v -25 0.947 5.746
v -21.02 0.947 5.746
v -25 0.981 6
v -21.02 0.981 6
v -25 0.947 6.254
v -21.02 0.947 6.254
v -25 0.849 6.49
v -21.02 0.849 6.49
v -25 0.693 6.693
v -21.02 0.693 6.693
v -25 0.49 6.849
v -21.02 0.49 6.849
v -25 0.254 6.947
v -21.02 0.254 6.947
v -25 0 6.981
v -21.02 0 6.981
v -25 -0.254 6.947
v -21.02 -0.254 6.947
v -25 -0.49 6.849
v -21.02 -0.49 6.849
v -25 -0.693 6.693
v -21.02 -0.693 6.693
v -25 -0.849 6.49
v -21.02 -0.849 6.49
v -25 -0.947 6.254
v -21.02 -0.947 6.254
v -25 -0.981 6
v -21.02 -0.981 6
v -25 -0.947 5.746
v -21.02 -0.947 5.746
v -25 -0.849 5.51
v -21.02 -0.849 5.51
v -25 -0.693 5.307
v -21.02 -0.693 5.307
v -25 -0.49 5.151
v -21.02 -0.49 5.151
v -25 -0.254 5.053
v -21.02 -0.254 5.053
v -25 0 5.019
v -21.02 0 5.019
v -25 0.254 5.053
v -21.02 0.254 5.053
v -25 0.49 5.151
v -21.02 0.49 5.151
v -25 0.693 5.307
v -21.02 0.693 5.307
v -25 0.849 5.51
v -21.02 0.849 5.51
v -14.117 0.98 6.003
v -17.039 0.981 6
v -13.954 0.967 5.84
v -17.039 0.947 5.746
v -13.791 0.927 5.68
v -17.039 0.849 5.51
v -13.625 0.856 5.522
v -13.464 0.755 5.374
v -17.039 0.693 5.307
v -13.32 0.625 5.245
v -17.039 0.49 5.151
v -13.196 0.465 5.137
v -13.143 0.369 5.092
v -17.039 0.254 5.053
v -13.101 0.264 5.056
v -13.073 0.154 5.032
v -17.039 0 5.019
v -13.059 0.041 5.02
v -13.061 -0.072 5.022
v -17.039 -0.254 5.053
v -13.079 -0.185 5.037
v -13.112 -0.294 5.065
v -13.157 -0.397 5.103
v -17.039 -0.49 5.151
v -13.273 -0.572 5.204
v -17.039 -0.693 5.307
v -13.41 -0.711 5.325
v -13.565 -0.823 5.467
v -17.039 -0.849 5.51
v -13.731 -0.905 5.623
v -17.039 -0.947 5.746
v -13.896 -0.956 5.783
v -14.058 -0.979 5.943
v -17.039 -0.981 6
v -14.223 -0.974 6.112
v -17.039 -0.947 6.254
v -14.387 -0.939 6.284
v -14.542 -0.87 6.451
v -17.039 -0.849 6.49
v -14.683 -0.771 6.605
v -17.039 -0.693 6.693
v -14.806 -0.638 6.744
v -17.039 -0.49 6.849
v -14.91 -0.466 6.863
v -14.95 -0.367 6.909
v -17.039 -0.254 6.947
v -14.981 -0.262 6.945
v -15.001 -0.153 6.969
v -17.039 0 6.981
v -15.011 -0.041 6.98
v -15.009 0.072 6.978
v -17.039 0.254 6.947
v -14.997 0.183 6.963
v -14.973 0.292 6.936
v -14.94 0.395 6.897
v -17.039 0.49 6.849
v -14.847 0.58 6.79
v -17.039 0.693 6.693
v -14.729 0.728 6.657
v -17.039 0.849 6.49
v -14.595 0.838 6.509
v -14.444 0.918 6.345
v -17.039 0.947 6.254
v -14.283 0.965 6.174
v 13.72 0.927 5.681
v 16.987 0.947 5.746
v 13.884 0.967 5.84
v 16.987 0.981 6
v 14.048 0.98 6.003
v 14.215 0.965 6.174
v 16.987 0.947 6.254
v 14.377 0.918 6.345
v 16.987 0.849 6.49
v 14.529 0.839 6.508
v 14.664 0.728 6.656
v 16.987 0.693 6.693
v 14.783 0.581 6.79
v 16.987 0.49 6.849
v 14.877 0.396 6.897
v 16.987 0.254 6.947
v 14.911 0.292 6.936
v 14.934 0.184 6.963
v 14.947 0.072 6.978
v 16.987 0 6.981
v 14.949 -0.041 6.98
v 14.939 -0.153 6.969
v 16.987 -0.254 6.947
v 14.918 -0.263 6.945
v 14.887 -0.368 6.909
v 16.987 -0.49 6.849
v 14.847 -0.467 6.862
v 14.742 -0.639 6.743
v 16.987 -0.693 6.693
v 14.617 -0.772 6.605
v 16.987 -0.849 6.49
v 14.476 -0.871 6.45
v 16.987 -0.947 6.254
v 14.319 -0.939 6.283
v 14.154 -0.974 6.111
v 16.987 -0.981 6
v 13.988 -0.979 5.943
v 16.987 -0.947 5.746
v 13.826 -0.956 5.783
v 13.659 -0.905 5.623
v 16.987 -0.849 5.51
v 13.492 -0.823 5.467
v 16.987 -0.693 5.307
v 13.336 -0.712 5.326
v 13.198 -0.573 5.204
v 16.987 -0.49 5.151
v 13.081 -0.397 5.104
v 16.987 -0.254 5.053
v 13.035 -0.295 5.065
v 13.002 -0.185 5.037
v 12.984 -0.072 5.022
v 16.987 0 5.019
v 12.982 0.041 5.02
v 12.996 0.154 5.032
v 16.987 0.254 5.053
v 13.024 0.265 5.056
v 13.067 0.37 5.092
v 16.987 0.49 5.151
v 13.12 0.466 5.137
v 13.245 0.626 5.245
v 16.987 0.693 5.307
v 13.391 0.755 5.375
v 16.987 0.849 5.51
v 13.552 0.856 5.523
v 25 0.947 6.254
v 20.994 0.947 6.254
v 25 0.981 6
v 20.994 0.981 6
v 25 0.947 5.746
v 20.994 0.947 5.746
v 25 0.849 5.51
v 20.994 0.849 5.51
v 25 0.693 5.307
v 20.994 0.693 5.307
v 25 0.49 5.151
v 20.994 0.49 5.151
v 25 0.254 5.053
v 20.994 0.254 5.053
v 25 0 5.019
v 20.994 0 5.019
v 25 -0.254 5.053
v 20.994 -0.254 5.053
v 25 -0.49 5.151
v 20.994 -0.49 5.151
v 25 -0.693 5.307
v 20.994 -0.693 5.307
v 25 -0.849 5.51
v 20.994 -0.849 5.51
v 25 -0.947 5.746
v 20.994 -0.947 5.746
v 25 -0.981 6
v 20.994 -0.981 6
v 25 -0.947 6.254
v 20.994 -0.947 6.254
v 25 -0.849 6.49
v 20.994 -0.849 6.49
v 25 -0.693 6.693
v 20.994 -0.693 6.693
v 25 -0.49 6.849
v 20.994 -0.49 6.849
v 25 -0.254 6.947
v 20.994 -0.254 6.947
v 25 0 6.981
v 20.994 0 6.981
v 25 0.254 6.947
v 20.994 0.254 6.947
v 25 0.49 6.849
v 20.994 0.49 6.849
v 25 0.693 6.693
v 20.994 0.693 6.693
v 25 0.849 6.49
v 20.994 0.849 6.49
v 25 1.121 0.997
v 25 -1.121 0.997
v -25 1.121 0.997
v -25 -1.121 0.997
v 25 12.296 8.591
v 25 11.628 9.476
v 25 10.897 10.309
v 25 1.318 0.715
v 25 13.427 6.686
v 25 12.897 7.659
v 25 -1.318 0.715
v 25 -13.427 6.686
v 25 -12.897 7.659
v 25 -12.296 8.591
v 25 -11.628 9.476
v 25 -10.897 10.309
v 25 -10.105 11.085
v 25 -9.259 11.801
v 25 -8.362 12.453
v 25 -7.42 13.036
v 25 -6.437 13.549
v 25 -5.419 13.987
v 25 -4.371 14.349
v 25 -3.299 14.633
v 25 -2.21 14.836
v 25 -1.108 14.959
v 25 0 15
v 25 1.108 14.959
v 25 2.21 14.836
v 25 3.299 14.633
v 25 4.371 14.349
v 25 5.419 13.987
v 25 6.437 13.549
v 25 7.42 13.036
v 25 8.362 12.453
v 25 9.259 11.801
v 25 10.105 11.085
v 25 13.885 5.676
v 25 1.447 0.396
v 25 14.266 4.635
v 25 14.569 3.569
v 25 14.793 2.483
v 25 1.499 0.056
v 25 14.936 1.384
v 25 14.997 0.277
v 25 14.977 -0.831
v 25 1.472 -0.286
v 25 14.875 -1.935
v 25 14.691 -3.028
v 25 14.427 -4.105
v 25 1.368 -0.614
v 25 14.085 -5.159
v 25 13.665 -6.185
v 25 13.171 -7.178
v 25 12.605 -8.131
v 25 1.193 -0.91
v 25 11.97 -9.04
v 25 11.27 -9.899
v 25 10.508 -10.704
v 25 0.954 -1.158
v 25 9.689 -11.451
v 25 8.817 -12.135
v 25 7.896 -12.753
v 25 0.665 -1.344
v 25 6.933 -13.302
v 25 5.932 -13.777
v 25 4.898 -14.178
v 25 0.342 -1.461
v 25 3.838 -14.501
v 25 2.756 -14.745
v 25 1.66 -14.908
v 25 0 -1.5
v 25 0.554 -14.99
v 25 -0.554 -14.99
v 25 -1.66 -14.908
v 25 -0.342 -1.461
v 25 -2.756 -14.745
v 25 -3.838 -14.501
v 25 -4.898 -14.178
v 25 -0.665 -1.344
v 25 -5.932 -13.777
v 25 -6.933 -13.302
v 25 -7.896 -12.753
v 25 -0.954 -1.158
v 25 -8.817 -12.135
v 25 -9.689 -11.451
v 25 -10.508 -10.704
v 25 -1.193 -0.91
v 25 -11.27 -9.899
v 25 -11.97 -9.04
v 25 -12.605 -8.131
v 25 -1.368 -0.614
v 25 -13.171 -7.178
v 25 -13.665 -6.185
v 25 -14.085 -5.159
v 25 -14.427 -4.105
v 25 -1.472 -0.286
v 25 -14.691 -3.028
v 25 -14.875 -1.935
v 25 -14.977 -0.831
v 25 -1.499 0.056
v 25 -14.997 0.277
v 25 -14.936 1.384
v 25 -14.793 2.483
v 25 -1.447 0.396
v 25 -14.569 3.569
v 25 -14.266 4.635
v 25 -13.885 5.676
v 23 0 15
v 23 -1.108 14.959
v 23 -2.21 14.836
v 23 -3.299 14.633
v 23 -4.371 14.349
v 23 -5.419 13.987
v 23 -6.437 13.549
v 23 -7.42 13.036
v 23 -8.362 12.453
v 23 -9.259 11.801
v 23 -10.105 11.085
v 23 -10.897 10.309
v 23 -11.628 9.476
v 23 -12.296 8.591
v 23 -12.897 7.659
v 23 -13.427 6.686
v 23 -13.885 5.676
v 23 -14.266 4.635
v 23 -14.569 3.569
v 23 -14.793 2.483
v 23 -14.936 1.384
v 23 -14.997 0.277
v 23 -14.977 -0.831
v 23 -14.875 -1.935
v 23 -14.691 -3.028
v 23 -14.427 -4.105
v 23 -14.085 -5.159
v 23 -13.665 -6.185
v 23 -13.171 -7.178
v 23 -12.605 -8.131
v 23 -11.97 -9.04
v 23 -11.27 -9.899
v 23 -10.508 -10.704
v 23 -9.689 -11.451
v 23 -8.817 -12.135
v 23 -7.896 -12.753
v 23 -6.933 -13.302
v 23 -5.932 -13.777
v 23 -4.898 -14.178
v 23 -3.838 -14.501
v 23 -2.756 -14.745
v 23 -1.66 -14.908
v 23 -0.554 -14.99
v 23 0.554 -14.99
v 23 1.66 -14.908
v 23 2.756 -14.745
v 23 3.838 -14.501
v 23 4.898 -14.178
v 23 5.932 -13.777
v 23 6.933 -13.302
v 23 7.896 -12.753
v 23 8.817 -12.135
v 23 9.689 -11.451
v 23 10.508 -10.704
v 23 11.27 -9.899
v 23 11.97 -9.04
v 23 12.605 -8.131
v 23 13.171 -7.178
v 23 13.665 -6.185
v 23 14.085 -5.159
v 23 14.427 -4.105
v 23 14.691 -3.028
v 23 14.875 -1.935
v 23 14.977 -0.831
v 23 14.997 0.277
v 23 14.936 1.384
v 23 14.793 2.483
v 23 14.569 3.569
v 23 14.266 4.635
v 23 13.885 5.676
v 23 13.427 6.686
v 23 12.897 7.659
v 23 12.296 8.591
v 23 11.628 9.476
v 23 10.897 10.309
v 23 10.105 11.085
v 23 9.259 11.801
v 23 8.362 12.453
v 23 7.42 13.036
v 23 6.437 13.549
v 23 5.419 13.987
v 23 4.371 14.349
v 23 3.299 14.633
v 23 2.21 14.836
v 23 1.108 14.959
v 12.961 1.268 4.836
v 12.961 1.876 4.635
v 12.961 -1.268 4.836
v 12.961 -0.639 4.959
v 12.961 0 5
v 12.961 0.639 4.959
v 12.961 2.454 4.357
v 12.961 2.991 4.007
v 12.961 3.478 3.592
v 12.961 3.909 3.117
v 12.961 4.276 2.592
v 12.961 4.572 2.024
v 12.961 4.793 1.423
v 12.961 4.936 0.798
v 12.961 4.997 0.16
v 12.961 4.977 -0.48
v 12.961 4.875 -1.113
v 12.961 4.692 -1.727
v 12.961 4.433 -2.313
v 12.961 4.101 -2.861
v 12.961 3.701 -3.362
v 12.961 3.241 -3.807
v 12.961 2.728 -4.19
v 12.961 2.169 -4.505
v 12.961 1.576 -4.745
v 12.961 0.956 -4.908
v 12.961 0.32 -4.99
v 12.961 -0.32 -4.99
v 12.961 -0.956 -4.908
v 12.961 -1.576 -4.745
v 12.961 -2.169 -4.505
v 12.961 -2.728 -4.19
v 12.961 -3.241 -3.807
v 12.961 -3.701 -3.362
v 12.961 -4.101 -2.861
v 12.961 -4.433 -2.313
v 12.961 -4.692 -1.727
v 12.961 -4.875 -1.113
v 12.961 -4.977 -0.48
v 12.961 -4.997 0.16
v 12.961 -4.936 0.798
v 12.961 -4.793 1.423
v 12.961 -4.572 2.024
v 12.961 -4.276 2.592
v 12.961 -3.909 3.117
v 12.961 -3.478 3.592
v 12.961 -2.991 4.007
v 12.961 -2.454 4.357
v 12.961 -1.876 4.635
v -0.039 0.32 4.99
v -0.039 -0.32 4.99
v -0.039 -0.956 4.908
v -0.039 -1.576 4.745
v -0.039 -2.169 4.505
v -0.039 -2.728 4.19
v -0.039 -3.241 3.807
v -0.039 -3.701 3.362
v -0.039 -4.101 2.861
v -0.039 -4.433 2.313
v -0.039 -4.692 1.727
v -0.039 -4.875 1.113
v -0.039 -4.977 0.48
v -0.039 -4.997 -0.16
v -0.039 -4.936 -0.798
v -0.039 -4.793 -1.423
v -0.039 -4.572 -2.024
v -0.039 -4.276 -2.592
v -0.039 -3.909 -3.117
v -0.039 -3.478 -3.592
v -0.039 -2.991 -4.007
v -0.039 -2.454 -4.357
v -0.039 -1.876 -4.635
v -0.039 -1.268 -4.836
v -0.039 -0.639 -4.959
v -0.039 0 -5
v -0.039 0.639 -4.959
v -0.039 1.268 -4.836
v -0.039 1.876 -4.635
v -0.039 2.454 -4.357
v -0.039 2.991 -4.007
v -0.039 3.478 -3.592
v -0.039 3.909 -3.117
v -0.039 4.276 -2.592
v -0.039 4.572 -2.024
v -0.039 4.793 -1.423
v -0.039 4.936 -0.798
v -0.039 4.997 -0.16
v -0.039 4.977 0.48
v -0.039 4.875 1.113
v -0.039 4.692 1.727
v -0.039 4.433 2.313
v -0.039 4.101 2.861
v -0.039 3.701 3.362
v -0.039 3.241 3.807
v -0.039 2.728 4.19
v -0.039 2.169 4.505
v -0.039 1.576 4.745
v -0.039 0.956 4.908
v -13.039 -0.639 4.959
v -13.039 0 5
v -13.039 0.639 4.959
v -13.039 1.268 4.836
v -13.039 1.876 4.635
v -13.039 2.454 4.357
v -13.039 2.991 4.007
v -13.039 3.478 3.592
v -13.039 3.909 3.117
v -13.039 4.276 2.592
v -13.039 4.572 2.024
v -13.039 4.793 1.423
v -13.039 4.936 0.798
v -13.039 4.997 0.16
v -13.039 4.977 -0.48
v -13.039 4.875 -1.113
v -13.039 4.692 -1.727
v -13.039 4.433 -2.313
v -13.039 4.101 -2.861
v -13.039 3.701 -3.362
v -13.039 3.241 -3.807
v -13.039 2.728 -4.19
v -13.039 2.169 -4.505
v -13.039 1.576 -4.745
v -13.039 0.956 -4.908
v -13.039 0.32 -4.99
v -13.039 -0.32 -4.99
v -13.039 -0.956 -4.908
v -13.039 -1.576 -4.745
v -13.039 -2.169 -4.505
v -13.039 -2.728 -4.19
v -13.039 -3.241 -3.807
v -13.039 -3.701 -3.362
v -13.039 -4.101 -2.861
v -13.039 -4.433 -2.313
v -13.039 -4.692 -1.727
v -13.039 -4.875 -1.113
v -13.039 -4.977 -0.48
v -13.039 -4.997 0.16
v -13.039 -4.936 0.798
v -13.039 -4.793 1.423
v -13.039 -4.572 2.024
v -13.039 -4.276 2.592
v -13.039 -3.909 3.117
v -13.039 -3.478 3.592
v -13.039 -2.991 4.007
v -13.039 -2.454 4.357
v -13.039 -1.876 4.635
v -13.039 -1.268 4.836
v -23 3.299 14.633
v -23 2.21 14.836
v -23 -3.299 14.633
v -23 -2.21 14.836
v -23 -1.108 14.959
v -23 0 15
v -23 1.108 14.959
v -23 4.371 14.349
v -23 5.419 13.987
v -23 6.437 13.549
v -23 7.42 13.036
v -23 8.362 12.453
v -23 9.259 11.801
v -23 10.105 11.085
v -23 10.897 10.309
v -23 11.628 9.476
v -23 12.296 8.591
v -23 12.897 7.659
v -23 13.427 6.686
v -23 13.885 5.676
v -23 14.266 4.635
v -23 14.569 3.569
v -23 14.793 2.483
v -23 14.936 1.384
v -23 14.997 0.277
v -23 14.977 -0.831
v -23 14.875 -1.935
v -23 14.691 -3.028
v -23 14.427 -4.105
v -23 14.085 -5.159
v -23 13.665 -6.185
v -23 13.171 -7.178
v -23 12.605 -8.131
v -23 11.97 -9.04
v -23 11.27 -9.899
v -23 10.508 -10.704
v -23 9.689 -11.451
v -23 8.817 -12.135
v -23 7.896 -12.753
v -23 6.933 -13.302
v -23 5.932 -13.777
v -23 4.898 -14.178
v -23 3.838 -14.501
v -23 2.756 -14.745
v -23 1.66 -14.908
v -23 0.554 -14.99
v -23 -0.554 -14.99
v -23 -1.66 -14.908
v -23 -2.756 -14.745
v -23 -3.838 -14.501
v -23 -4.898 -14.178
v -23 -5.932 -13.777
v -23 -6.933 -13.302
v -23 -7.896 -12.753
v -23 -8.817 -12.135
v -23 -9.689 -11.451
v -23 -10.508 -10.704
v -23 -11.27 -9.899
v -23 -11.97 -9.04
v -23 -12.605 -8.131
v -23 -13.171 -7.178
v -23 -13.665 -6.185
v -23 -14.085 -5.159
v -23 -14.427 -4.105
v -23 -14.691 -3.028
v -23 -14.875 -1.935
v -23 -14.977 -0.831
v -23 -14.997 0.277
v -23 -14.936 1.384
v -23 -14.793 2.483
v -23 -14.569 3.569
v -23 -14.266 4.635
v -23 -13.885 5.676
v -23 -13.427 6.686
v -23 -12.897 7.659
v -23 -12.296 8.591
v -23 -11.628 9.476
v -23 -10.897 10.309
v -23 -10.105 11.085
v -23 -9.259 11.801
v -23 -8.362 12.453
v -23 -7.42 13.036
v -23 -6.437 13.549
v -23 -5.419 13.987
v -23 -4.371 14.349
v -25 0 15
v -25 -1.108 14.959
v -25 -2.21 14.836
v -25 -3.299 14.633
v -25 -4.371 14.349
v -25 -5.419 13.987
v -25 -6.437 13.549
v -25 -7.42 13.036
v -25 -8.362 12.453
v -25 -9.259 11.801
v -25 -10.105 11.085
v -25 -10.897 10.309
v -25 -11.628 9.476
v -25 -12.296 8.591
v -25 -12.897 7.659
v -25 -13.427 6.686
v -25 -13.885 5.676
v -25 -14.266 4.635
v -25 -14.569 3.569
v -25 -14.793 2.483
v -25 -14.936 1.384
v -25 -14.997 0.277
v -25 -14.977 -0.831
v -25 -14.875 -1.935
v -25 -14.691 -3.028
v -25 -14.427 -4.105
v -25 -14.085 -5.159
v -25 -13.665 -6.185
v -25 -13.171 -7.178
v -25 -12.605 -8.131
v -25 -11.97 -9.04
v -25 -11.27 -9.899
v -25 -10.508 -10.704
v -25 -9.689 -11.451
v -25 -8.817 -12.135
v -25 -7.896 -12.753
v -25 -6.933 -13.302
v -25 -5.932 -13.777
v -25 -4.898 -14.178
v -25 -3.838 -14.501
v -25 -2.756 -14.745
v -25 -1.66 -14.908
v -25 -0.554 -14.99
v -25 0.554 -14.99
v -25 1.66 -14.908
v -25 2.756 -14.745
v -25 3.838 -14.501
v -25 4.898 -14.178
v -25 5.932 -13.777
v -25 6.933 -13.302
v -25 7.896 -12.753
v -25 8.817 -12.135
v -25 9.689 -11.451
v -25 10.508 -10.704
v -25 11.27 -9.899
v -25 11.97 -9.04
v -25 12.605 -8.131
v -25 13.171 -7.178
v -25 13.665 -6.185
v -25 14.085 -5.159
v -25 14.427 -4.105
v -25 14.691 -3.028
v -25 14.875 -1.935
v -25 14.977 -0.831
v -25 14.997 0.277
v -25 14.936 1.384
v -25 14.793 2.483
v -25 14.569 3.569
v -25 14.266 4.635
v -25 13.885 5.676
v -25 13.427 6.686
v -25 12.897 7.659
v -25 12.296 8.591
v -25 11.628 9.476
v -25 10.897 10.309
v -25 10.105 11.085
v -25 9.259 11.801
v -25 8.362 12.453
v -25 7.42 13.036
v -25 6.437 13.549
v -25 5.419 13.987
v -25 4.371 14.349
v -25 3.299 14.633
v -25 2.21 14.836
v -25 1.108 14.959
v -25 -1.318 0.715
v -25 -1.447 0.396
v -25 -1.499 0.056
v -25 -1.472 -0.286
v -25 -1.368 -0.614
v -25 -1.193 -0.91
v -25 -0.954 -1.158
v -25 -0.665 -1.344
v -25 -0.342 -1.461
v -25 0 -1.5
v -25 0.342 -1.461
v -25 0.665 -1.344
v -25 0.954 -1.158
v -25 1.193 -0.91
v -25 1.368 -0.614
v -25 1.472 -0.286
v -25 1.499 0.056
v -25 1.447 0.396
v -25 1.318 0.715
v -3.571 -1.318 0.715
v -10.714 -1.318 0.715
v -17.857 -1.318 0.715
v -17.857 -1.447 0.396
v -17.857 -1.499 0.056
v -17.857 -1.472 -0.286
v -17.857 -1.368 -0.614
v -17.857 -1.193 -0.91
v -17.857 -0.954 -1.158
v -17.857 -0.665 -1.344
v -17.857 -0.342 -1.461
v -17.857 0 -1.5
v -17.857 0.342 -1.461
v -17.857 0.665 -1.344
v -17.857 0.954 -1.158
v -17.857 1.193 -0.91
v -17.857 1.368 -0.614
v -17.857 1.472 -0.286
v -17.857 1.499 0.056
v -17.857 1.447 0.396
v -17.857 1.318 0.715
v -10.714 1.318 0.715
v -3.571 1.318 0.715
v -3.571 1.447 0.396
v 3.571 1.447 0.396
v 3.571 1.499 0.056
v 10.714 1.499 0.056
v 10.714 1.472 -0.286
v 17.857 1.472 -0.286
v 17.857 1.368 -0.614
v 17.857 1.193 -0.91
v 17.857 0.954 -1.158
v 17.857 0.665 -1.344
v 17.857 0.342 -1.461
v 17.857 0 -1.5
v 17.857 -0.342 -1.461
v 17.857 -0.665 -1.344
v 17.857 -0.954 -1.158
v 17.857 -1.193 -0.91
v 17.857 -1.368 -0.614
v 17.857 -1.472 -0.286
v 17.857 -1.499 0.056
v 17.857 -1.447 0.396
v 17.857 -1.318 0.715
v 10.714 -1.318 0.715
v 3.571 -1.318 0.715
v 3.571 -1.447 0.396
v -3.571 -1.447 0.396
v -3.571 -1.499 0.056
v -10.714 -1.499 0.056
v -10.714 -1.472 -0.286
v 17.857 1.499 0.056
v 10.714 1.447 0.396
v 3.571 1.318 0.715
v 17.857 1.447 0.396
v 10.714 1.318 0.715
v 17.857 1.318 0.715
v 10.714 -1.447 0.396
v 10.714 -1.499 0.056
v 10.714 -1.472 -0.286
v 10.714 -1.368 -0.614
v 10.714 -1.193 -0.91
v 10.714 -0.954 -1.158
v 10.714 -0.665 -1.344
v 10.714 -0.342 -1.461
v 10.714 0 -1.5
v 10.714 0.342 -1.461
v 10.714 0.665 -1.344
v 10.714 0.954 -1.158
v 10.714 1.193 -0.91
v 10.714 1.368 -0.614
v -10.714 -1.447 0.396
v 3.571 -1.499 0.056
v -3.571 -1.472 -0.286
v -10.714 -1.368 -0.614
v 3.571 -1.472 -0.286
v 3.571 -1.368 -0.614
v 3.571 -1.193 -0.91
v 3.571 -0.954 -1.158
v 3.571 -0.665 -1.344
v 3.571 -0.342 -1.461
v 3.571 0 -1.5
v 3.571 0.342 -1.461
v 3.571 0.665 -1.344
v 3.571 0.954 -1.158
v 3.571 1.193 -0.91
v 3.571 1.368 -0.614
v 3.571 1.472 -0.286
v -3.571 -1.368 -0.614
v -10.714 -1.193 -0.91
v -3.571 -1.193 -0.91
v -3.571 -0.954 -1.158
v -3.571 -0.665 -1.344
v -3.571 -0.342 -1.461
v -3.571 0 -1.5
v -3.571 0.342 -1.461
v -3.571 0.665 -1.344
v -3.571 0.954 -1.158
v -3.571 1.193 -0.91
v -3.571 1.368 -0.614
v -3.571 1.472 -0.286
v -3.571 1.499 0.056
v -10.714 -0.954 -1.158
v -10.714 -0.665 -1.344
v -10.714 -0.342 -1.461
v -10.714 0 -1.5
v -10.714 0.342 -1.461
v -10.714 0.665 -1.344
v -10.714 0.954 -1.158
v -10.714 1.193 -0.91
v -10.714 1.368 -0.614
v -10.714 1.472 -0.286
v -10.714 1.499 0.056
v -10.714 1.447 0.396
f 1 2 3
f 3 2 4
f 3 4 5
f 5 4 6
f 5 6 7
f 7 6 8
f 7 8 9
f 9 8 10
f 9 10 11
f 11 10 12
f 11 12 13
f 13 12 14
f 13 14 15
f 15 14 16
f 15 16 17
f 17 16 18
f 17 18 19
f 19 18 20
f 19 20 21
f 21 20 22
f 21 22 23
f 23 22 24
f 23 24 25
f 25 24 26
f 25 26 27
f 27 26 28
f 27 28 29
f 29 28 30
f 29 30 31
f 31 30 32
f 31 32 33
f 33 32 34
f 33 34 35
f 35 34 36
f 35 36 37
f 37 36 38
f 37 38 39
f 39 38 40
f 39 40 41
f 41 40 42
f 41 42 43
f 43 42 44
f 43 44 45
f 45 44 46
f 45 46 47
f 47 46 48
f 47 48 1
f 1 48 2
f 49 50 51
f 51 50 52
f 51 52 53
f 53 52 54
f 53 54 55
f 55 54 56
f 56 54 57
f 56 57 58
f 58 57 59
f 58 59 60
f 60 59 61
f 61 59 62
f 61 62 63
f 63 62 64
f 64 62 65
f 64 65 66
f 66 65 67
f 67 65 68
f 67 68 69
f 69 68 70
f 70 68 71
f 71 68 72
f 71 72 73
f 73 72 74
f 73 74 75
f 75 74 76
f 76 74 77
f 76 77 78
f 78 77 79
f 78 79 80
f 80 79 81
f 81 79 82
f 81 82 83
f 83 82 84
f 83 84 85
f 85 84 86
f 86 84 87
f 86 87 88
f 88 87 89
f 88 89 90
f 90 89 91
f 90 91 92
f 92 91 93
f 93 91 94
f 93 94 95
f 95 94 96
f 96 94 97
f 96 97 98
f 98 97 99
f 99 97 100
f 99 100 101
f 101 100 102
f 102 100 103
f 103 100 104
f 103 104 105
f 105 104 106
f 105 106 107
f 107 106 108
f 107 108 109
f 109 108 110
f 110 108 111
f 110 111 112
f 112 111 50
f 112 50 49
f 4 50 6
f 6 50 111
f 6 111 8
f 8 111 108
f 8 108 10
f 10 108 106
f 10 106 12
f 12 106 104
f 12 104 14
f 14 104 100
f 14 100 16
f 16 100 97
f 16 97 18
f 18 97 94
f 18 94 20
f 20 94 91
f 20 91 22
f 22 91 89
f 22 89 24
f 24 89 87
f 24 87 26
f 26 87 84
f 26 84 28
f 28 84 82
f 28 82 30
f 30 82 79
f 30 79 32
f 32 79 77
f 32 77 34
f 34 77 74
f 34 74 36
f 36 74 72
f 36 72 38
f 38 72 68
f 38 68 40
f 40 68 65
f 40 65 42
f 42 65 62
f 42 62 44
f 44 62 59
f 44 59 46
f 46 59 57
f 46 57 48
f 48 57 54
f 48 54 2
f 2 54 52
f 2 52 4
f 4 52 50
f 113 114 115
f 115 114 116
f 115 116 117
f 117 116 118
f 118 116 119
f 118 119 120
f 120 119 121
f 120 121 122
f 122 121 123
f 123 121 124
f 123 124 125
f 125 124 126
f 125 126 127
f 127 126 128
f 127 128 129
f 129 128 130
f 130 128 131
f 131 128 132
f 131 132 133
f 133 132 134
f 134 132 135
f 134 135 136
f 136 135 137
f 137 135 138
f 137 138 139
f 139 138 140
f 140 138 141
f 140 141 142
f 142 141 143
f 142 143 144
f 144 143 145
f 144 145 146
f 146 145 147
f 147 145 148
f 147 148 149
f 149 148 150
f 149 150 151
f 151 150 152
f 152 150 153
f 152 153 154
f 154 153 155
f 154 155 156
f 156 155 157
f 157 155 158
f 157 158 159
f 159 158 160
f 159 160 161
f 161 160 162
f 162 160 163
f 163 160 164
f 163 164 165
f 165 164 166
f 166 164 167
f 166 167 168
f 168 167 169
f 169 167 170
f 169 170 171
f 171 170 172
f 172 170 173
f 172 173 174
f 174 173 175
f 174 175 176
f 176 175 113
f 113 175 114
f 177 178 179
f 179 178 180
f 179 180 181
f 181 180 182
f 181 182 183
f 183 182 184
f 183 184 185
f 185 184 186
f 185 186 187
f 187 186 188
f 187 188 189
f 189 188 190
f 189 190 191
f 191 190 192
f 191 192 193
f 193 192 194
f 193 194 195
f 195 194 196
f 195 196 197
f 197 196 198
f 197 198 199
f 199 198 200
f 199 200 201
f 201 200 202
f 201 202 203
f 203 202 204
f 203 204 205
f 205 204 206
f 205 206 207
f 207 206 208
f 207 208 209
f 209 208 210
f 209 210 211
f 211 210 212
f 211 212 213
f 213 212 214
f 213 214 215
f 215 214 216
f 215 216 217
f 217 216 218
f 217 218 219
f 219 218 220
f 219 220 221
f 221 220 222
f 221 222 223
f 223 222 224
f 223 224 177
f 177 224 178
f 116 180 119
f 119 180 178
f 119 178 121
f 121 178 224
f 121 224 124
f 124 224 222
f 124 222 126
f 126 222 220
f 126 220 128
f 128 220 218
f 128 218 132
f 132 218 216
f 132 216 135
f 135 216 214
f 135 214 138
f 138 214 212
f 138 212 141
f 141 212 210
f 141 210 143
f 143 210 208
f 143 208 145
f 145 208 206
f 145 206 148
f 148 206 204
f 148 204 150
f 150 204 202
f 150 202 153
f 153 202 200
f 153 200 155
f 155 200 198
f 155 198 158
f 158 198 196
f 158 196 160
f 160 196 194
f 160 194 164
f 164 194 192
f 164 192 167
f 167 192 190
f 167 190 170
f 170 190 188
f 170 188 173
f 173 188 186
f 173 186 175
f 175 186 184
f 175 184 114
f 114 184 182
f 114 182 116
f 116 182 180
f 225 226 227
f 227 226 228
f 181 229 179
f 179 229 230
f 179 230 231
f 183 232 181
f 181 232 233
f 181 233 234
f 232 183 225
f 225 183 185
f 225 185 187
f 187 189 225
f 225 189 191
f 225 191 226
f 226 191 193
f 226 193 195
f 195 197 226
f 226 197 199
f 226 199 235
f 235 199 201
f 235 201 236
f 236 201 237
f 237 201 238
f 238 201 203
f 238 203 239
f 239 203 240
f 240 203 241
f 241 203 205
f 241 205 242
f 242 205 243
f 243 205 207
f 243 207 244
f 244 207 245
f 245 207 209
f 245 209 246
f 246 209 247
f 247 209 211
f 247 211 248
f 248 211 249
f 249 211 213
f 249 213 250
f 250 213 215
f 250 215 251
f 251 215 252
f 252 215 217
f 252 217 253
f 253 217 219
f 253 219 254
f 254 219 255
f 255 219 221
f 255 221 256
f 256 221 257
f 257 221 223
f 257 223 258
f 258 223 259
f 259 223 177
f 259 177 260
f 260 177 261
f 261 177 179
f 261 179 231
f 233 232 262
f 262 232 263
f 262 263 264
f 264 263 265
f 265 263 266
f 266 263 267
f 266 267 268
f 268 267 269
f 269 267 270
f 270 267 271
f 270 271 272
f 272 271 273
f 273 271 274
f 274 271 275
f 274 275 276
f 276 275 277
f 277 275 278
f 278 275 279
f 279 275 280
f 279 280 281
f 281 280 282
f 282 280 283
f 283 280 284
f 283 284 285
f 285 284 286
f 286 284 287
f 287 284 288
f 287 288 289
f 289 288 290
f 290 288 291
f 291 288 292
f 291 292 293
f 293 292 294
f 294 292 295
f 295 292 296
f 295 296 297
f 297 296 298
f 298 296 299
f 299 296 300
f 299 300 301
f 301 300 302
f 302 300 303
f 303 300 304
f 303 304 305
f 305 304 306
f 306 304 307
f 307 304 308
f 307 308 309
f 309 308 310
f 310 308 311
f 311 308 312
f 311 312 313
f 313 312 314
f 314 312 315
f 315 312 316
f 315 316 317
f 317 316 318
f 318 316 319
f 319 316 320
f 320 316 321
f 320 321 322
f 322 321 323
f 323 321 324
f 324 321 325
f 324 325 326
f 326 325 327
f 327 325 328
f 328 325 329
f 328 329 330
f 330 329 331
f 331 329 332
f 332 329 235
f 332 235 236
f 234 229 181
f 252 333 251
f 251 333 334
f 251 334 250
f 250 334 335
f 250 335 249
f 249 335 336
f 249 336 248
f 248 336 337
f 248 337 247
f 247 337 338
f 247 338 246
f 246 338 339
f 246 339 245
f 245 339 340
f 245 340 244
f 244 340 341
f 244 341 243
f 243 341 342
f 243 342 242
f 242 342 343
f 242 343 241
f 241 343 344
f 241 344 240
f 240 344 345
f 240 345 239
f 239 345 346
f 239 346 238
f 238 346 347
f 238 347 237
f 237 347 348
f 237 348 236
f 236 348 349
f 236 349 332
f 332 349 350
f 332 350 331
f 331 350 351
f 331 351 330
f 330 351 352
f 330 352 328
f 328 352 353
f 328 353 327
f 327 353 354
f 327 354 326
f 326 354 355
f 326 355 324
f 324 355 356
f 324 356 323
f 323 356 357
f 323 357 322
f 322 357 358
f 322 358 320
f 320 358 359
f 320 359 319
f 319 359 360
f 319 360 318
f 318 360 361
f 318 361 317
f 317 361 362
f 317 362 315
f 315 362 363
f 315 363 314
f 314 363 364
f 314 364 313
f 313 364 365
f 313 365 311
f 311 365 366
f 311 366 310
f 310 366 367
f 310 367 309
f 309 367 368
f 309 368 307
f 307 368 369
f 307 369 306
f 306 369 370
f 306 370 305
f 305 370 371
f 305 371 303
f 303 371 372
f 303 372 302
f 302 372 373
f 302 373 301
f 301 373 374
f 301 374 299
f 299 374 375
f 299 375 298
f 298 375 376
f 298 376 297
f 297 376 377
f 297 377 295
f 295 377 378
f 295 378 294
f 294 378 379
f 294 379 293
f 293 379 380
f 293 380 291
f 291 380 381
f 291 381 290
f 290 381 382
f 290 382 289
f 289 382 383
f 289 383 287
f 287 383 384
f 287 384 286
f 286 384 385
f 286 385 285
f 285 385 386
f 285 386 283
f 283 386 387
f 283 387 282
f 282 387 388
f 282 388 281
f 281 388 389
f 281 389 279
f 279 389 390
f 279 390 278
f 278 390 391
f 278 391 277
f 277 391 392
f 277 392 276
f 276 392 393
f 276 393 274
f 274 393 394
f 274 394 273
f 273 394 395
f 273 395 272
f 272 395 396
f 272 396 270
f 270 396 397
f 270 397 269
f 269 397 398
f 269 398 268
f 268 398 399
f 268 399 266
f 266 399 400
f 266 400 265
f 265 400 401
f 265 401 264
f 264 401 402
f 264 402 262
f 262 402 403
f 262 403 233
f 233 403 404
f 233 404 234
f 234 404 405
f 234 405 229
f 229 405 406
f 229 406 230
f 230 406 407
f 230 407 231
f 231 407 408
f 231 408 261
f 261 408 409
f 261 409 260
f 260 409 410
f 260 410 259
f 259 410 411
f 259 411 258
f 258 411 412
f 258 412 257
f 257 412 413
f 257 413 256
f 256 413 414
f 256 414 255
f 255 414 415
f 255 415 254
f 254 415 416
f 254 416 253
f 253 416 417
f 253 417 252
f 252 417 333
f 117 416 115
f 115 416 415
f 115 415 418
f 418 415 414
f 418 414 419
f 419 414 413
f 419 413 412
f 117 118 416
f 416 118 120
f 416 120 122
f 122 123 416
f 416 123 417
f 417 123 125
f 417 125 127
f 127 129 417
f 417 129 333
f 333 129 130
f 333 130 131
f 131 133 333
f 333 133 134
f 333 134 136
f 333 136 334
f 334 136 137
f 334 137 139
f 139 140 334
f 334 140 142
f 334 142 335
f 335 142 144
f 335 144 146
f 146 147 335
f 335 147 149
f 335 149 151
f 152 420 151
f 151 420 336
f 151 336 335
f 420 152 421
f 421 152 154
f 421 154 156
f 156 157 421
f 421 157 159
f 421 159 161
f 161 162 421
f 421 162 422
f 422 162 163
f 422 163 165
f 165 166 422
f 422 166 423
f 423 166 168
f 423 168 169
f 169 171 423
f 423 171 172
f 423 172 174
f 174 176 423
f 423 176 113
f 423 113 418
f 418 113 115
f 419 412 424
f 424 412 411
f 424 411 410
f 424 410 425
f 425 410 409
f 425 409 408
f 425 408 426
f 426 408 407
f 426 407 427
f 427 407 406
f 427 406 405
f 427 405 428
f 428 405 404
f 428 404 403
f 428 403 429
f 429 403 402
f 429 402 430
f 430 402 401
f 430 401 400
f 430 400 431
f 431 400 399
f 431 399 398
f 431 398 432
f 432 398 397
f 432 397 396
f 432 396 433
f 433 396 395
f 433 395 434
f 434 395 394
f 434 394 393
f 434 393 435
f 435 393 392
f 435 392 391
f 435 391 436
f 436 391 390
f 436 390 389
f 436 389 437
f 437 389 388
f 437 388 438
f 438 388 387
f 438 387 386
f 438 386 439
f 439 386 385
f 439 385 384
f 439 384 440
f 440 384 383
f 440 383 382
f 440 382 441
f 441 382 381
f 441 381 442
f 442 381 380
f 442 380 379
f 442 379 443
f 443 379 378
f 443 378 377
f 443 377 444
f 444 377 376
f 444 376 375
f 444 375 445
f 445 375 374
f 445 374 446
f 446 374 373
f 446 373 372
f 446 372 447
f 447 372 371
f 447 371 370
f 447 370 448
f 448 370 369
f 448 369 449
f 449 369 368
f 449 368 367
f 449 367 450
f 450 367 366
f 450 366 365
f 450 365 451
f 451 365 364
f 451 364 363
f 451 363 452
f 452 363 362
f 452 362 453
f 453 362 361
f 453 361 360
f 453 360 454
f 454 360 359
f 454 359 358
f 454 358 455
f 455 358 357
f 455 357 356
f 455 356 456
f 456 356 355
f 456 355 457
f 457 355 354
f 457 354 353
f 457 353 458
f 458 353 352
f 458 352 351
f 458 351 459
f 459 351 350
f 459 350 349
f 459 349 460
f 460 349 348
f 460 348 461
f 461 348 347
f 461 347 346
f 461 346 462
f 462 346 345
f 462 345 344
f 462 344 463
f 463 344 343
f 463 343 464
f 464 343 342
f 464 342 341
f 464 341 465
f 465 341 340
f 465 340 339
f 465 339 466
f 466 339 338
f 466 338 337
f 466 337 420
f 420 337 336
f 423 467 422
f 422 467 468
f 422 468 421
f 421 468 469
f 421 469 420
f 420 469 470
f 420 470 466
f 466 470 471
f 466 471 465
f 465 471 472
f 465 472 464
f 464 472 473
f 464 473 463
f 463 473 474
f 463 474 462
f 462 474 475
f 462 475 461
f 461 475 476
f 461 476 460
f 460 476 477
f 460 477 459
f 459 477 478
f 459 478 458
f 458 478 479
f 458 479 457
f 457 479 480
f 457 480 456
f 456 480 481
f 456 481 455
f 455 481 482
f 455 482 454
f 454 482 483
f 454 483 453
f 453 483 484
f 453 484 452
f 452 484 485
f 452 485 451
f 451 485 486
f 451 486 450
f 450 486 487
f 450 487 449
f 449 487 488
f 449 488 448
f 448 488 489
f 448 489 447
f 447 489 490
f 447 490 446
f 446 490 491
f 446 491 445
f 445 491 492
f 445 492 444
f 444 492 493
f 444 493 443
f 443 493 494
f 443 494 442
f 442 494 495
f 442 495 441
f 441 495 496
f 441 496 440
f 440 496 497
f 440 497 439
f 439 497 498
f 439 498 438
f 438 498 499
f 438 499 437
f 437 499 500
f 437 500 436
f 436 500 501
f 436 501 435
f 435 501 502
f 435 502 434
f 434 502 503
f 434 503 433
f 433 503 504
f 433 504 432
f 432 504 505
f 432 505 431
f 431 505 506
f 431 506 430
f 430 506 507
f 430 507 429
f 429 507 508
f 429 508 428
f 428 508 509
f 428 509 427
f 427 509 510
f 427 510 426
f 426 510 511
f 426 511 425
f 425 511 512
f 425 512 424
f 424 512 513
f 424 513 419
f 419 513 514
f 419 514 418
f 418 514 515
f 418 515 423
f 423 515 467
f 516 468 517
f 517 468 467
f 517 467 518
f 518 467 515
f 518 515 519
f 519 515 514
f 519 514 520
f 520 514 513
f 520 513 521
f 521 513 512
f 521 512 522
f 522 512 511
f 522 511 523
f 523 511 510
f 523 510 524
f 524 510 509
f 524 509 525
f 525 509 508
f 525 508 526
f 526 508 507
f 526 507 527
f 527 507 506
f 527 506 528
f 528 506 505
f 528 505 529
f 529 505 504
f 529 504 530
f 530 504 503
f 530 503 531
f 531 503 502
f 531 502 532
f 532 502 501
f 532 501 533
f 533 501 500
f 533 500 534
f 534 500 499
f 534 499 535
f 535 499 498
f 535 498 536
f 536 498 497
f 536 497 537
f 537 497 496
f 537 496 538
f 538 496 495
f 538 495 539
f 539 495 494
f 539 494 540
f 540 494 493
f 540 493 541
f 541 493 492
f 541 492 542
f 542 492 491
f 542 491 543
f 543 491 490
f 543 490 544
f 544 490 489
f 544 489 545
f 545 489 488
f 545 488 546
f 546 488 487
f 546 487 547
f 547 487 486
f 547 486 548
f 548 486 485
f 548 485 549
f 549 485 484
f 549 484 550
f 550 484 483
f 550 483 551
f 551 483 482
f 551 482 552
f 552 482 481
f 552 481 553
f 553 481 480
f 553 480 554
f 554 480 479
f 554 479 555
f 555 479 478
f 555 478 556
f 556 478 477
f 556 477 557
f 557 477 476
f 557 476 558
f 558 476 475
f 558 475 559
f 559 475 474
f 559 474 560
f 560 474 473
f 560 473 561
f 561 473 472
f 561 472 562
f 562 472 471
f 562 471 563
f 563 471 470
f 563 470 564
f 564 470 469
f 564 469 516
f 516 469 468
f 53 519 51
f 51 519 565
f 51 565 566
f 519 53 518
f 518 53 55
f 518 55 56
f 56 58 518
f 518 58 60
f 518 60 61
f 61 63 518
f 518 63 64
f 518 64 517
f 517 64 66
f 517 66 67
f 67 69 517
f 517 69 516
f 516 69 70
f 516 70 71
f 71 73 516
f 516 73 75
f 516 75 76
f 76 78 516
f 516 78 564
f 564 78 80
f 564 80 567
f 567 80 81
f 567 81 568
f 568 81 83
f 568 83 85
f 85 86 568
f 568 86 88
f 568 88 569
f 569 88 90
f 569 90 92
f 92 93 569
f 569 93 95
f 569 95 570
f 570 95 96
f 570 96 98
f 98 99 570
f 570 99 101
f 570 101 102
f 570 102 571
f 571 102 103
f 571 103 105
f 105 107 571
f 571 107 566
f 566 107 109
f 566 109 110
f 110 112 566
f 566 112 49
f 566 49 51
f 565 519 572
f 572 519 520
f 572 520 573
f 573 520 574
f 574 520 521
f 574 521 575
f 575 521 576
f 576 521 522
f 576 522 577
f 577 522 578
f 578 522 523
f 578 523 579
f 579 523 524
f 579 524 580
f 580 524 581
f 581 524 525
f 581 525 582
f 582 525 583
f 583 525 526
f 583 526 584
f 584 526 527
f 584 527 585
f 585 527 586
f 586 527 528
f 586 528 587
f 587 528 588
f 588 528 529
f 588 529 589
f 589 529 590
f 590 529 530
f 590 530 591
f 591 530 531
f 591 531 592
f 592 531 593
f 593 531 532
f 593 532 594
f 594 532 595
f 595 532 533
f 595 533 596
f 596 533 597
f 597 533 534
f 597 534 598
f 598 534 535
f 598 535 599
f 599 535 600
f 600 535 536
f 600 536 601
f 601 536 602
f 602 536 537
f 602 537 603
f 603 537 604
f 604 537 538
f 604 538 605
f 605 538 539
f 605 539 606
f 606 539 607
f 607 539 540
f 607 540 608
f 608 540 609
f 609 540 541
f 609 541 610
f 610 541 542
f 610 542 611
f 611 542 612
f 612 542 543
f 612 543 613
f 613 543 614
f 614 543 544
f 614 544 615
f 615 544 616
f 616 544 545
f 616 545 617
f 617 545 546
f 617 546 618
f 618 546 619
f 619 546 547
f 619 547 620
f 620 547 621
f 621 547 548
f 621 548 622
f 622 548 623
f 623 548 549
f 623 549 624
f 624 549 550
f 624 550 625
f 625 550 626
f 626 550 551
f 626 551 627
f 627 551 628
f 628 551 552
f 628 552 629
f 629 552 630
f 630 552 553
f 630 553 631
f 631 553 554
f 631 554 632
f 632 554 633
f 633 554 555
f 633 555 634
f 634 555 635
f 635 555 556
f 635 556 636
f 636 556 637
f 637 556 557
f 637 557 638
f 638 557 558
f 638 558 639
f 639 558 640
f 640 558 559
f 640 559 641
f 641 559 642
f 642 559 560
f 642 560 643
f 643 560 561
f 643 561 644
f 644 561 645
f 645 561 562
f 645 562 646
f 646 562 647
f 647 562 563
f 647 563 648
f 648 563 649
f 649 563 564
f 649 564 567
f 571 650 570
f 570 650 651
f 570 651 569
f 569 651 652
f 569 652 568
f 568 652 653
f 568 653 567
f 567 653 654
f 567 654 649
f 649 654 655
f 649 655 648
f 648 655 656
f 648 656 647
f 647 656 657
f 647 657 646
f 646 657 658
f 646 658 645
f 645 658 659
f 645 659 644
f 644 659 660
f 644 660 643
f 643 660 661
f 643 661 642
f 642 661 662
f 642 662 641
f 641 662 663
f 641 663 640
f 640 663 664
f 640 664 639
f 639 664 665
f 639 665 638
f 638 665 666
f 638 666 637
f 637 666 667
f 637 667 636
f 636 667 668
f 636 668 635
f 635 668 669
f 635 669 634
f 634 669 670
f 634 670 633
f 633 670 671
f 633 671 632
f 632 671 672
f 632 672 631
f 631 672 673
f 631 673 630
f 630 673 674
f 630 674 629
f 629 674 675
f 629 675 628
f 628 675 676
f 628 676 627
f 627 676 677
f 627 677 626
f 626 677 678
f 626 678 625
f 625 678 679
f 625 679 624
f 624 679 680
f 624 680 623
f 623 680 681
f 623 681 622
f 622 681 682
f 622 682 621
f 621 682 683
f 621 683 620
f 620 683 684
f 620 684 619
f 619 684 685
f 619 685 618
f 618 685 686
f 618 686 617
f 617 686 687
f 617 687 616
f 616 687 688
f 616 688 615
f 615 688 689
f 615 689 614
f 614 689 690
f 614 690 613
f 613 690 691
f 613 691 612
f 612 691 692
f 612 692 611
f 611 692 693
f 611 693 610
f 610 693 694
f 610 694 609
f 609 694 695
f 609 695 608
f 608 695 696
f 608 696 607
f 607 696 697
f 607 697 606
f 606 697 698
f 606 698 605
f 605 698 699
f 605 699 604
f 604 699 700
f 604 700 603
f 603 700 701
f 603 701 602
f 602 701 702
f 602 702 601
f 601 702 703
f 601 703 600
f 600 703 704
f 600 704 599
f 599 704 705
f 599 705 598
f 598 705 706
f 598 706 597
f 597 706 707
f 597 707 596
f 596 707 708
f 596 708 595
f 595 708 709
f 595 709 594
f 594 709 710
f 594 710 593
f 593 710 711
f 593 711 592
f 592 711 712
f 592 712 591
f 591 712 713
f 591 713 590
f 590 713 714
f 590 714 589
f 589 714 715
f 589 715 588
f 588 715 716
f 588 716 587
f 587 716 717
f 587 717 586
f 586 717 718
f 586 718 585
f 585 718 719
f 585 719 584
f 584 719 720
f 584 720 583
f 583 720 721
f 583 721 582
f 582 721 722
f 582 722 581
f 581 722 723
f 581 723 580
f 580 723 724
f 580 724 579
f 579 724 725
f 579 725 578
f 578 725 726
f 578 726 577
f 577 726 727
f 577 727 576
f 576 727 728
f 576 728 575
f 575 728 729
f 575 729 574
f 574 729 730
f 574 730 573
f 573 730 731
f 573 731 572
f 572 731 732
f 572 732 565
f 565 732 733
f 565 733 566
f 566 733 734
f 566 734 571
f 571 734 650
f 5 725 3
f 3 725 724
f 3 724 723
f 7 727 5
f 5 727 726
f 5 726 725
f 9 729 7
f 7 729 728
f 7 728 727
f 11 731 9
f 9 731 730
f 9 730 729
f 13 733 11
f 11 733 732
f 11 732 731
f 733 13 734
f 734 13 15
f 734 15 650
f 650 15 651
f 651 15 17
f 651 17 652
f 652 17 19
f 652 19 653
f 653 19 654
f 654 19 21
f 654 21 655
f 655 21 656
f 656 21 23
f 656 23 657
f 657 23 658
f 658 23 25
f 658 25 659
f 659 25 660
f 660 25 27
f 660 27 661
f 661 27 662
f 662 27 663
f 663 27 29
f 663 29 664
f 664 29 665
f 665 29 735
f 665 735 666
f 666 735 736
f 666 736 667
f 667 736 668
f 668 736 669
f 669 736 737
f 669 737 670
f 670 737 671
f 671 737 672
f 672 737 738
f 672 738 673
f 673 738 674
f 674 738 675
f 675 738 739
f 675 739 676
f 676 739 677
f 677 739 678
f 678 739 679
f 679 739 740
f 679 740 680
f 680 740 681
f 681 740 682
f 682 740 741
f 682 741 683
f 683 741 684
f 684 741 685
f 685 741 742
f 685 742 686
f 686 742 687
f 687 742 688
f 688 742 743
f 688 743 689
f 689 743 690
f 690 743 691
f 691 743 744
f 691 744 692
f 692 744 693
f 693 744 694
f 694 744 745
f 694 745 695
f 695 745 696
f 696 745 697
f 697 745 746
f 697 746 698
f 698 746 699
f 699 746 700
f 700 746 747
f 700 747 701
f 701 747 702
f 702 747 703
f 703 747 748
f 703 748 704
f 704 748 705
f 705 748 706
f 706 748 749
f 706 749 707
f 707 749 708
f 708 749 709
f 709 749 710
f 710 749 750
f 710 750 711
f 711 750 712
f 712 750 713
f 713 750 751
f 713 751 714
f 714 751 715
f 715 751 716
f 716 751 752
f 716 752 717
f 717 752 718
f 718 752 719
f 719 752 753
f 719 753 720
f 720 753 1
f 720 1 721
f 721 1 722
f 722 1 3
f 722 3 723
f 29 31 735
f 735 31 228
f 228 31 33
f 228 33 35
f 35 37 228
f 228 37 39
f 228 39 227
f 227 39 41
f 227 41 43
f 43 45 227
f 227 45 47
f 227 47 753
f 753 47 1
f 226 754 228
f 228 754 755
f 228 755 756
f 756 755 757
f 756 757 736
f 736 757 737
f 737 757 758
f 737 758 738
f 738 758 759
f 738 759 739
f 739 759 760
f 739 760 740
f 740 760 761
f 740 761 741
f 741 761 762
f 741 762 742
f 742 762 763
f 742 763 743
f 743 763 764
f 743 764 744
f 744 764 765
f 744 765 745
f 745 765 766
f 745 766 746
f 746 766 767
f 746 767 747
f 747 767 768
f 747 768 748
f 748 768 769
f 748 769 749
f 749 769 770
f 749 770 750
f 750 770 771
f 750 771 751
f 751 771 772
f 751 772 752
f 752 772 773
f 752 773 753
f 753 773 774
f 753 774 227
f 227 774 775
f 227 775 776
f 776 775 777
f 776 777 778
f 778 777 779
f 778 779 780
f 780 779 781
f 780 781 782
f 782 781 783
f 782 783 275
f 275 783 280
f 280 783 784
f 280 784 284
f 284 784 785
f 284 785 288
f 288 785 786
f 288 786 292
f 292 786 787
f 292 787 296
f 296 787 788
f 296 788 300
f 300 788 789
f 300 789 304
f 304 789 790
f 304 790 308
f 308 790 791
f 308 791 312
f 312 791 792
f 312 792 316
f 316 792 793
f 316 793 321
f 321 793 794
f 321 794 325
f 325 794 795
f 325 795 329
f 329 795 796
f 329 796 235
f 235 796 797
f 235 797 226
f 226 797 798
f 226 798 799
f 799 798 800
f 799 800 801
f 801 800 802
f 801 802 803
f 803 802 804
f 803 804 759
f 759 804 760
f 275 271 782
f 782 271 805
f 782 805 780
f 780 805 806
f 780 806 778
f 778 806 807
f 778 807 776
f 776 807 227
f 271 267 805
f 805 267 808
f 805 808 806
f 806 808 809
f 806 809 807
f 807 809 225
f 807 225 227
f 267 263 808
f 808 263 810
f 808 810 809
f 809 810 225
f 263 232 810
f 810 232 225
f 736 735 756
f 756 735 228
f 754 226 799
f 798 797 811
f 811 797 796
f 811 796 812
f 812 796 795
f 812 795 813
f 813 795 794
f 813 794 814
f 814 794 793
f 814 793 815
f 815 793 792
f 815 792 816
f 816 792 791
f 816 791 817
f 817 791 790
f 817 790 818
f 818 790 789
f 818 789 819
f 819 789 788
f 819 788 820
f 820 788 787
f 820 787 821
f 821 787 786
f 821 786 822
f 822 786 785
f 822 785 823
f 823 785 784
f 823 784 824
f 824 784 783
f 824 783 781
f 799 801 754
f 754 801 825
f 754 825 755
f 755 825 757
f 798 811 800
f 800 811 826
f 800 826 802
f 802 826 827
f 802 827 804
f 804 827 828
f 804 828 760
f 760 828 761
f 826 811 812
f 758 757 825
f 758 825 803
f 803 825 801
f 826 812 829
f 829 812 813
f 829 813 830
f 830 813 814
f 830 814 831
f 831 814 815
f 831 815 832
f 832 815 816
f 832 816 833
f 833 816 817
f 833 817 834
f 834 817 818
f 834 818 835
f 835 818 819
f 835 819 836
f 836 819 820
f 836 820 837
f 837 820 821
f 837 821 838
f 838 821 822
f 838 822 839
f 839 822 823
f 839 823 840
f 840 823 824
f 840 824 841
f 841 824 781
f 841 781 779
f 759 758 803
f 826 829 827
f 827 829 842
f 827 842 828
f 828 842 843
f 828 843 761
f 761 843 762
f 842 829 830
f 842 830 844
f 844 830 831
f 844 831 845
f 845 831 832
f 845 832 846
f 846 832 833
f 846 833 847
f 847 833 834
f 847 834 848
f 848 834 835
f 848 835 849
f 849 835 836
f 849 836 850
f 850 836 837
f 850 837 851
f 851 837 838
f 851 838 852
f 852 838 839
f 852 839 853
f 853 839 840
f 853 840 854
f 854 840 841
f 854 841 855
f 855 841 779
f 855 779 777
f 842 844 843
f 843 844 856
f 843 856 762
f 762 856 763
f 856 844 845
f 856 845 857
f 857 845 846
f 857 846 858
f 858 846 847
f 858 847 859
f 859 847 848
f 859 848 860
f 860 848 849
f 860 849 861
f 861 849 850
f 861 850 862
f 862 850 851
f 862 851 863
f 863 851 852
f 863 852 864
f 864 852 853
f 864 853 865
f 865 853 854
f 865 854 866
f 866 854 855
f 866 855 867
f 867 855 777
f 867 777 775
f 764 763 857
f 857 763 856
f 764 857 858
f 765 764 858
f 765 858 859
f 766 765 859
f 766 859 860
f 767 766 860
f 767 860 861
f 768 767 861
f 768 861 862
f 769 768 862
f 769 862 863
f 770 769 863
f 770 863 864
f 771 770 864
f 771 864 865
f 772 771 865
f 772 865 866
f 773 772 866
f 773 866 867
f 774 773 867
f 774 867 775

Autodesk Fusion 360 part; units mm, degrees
sketch "Esquisse1" plane through (0, 0, 0) normal (0, 1, 0) x (1, 0, 0)
  line L0 (-25, -1.5) -> (-25, -15)
  line L1 (-25, -15) -> (-23, -15)
  line L2 (-23, -15) -> (-13.0387, -5)
  line L3 (-13.0387, -5) -> (12.9612, -5)
  line L4 (12.9612, -5) -> (23, -15)
  line L5 (23, -15) -> (25, -15)
  line L6 (25, -15) -> (25, -1.5)
  line L7 (25, -1.5) -> (-25, -1.5)
revolve "Révolution1" add sketch "Esquisse1" angle 360 about axis through (1.75, 0, 0) along (1, 0, 0)
sketch "Esquisse2" plane through (-25, 0, 0) normal (-1, 0, 0) x (0, -1, 0)
  circle A0 centre (0, 0) radius 15
  circle A1 centre (0, 0) radius 1.5
  line L0 (1.1208, 0.9969) -> (-1.1208, 0.9969)
  arc A2 (1.1208, 0.9969) -> (-1.1208, 0.9969) centre (0, 0) ccw
extrude "Extrusion1" add sketch "Esquisse2" against normal up to surface (50 mm away) contours A1 L0 A2
sketch "Esquisse3" plane through (-25, 0, 0) normal (-1, 0, 0) x (0, -1, 0)
  circle A0 centre (0, 0) radius 15
  arc A1 (-1.1208, 0.9969) -> (1.1208, 0.9969) centre (0, 0) ccw
  line L0 (-1.1208, 0.9969) -> (1.1208, 0.9969)
  circle A2 centre (0, 6) radius 0.9805
extrude "Extrusion2" cut sketch "Esquisse3" against normal up to surface (50 mm away) contours A2
